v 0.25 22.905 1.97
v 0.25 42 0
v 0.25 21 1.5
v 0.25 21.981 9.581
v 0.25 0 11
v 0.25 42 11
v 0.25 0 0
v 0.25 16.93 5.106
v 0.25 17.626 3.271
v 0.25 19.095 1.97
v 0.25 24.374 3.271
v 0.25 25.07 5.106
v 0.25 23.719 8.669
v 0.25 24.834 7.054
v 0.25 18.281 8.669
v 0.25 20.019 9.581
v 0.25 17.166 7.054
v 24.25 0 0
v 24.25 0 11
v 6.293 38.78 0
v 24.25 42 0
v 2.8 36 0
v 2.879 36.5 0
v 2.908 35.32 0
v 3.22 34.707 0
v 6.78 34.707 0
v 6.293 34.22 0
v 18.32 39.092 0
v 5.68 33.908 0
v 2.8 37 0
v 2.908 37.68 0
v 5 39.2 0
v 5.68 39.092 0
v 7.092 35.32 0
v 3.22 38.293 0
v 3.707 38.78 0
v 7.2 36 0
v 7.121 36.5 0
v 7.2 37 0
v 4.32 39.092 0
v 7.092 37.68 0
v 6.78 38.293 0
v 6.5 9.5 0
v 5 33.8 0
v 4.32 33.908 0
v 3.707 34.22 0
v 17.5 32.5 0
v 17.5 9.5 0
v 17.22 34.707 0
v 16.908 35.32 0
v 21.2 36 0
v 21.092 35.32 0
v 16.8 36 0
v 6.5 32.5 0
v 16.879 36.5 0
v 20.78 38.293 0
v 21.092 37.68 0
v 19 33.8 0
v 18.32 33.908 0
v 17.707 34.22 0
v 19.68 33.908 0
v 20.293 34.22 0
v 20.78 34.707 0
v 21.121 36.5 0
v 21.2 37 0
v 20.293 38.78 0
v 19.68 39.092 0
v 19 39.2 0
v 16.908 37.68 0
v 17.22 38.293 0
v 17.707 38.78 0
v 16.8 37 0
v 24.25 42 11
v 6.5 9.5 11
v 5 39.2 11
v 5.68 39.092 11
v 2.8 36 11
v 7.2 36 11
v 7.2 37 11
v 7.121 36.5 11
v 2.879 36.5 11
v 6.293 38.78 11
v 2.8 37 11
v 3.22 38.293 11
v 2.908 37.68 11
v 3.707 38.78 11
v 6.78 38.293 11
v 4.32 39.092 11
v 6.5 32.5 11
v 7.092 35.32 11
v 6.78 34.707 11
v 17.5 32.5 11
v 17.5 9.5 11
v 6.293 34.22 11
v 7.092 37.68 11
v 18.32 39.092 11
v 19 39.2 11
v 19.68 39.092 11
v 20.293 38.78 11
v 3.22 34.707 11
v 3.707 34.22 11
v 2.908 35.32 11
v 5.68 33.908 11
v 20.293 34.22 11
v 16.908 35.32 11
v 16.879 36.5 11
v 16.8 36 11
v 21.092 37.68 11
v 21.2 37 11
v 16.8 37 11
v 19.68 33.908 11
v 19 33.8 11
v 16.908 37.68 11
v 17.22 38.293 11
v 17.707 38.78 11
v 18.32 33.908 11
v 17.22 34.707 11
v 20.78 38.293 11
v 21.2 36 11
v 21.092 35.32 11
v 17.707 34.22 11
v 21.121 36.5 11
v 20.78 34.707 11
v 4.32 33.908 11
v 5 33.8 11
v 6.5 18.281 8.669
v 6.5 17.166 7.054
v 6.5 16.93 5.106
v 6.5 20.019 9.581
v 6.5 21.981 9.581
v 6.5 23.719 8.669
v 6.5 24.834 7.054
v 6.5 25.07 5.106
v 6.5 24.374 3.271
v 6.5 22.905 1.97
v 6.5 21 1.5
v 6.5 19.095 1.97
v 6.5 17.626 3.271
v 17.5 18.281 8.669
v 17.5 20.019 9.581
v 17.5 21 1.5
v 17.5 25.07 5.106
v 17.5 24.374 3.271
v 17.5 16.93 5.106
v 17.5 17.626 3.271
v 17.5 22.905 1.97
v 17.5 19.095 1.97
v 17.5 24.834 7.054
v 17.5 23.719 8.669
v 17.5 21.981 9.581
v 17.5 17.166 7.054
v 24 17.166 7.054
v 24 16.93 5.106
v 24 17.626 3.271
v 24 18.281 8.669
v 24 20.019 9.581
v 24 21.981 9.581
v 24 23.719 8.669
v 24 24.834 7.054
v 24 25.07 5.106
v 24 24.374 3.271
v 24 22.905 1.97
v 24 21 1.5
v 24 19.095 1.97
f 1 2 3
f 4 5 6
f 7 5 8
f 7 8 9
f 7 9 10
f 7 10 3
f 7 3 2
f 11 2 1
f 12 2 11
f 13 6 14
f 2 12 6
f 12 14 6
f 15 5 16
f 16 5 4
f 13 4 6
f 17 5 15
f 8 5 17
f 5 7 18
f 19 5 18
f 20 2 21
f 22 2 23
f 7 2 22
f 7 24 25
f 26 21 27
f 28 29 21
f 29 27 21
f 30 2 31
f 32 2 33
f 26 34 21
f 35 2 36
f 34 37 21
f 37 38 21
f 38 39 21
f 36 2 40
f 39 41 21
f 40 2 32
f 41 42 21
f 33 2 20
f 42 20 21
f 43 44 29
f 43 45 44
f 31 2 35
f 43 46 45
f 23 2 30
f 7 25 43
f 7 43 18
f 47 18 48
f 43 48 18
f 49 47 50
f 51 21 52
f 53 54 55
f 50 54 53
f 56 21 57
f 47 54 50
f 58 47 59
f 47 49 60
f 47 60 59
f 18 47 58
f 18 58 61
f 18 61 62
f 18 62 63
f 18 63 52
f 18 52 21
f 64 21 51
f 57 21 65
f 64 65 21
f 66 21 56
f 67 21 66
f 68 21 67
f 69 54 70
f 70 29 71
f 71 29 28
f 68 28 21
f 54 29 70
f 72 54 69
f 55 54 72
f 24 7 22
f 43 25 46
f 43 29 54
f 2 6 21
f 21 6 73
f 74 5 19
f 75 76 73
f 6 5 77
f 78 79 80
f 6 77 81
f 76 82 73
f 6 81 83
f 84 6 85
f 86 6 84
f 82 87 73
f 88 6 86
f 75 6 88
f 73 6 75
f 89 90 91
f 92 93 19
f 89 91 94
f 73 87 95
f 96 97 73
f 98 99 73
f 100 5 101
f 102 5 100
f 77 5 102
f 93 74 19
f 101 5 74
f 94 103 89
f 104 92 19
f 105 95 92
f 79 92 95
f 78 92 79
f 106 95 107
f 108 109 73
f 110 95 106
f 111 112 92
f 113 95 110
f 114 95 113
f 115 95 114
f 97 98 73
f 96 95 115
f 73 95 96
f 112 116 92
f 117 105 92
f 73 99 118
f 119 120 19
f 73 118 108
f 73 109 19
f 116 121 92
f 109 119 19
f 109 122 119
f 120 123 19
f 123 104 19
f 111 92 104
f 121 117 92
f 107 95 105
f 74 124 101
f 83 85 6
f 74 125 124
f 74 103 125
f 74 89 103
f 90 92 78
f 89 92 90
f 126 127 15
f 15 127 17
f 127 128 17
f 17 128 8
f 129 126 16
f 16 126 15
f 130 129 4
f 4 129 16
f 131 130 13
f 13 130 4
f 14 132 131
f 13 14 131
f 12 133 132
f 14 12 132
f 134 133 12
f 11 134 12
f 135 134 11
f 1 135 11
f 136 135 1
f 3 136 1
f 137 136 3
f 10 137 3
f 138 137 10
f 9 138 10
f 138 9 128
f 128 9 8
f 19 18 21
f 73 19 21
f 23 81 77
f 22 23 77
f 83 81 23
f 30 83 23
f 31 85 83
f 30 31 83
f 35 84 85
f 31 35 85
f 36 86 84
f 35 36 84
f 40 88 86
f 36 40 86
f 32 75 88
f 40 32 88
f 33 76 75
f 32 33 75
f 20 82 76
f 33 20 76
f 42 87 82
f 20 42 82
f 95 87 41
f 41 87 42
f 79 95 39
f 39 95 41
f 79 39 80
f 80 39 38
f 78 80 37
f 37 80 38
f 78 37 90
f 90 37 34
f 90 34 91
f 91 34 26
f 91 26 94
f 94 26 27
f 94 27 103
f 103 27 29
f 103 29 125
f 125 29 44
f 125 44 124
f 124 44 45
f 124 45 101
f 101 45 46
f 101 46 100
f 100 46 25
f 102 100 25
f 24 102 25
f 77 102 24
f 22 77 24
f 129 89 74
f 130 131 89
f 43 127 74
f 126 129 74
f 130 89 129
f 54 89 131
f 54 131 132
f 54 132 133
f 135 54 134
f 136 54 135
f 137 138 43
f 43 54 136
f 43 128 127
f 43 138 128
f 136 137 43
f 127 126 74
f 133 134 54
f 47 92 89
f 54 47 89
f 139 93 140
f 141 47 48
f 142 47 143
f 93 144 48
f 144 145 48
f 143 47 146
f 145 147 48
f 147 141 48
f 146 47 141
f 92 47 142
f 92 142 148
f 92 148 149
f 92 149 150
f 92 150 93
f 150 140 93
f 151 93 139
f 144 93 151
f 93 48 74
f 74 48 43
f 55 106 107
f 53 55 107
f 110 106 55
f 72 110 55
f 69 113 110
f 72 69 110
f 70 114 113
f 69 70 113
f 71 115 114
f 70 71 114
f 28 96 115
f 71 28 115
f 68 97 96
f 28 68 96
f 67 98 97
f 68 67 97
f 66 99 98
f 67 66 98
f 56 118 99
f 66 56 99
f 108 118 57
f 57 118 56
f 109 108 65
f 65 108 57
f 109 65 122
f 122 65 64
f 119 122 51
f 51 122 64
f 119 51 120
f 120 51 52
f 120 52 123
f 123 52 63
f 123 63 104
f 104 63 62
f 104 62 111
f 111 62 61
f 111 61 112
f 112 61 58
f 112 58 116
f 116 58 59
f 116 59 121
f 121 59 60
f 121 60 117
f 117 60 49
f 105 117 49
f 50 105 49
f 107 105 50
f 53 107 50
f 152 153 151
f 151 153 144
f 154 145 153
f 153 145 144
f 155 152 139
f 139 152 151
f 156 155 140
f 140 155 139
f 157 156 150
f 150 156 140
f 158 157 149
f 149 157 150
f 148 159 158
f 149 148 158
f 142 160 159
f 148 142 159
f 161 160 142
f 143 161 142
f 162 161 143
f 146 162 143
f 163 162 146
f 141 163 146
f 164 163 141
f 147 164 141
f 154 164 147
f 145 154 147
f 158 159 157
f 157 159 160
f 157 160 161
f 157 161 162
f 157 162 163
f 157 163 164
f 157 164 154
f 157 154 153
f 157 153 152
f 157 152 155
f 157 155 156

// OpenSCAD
// PRUSA iteration3
// NEMA 17 extruder idler
// GNU GPL v3
// Modified by Sam Sheffield <hello@samsheffield.com>
// Original by Josef Průša <iam@josefprusa.cz> and contributors
// http://www.reprap.org/wiki/Prusa_Mendel
// http://prusamendel.org


module extruder_idler_base(){
 translate([0.25,0,0]) cube([24,42,8+3]);
	
}

module extruder_idler_holes(){
 translate([12,21,0]){
  // Main cutout
  cube([11,23,25], center= true);
  // Idler shaft
  translate([-12,0,4.1+1.5])rotate([0,90,0])cylinder(r=4.1, h=24);
  // Screw holes
  //translate([7,-16,-1])cylinder(r=2.2, h=24);
  //translate([-7,-16,-1])cylinder(r=2.2, h=24);
  translate([7,16,-1])cylinder(r=2.2, h=24, $fn=20);
  translate([-7,16,-1])cylinder(r=2.2, h=24, $fn=20);

  translate([7,15,-1])cylinder(r=2.2, h=24, $fn=20);
  translate([-7,15,-1])cylinder(r=2.2, h=24, $fn=20);
 }
}


// Idler final part
module idler(){
 difference(){
  extruder_idler_base();
  extruder_idler_holes();
 }
}

idler();
